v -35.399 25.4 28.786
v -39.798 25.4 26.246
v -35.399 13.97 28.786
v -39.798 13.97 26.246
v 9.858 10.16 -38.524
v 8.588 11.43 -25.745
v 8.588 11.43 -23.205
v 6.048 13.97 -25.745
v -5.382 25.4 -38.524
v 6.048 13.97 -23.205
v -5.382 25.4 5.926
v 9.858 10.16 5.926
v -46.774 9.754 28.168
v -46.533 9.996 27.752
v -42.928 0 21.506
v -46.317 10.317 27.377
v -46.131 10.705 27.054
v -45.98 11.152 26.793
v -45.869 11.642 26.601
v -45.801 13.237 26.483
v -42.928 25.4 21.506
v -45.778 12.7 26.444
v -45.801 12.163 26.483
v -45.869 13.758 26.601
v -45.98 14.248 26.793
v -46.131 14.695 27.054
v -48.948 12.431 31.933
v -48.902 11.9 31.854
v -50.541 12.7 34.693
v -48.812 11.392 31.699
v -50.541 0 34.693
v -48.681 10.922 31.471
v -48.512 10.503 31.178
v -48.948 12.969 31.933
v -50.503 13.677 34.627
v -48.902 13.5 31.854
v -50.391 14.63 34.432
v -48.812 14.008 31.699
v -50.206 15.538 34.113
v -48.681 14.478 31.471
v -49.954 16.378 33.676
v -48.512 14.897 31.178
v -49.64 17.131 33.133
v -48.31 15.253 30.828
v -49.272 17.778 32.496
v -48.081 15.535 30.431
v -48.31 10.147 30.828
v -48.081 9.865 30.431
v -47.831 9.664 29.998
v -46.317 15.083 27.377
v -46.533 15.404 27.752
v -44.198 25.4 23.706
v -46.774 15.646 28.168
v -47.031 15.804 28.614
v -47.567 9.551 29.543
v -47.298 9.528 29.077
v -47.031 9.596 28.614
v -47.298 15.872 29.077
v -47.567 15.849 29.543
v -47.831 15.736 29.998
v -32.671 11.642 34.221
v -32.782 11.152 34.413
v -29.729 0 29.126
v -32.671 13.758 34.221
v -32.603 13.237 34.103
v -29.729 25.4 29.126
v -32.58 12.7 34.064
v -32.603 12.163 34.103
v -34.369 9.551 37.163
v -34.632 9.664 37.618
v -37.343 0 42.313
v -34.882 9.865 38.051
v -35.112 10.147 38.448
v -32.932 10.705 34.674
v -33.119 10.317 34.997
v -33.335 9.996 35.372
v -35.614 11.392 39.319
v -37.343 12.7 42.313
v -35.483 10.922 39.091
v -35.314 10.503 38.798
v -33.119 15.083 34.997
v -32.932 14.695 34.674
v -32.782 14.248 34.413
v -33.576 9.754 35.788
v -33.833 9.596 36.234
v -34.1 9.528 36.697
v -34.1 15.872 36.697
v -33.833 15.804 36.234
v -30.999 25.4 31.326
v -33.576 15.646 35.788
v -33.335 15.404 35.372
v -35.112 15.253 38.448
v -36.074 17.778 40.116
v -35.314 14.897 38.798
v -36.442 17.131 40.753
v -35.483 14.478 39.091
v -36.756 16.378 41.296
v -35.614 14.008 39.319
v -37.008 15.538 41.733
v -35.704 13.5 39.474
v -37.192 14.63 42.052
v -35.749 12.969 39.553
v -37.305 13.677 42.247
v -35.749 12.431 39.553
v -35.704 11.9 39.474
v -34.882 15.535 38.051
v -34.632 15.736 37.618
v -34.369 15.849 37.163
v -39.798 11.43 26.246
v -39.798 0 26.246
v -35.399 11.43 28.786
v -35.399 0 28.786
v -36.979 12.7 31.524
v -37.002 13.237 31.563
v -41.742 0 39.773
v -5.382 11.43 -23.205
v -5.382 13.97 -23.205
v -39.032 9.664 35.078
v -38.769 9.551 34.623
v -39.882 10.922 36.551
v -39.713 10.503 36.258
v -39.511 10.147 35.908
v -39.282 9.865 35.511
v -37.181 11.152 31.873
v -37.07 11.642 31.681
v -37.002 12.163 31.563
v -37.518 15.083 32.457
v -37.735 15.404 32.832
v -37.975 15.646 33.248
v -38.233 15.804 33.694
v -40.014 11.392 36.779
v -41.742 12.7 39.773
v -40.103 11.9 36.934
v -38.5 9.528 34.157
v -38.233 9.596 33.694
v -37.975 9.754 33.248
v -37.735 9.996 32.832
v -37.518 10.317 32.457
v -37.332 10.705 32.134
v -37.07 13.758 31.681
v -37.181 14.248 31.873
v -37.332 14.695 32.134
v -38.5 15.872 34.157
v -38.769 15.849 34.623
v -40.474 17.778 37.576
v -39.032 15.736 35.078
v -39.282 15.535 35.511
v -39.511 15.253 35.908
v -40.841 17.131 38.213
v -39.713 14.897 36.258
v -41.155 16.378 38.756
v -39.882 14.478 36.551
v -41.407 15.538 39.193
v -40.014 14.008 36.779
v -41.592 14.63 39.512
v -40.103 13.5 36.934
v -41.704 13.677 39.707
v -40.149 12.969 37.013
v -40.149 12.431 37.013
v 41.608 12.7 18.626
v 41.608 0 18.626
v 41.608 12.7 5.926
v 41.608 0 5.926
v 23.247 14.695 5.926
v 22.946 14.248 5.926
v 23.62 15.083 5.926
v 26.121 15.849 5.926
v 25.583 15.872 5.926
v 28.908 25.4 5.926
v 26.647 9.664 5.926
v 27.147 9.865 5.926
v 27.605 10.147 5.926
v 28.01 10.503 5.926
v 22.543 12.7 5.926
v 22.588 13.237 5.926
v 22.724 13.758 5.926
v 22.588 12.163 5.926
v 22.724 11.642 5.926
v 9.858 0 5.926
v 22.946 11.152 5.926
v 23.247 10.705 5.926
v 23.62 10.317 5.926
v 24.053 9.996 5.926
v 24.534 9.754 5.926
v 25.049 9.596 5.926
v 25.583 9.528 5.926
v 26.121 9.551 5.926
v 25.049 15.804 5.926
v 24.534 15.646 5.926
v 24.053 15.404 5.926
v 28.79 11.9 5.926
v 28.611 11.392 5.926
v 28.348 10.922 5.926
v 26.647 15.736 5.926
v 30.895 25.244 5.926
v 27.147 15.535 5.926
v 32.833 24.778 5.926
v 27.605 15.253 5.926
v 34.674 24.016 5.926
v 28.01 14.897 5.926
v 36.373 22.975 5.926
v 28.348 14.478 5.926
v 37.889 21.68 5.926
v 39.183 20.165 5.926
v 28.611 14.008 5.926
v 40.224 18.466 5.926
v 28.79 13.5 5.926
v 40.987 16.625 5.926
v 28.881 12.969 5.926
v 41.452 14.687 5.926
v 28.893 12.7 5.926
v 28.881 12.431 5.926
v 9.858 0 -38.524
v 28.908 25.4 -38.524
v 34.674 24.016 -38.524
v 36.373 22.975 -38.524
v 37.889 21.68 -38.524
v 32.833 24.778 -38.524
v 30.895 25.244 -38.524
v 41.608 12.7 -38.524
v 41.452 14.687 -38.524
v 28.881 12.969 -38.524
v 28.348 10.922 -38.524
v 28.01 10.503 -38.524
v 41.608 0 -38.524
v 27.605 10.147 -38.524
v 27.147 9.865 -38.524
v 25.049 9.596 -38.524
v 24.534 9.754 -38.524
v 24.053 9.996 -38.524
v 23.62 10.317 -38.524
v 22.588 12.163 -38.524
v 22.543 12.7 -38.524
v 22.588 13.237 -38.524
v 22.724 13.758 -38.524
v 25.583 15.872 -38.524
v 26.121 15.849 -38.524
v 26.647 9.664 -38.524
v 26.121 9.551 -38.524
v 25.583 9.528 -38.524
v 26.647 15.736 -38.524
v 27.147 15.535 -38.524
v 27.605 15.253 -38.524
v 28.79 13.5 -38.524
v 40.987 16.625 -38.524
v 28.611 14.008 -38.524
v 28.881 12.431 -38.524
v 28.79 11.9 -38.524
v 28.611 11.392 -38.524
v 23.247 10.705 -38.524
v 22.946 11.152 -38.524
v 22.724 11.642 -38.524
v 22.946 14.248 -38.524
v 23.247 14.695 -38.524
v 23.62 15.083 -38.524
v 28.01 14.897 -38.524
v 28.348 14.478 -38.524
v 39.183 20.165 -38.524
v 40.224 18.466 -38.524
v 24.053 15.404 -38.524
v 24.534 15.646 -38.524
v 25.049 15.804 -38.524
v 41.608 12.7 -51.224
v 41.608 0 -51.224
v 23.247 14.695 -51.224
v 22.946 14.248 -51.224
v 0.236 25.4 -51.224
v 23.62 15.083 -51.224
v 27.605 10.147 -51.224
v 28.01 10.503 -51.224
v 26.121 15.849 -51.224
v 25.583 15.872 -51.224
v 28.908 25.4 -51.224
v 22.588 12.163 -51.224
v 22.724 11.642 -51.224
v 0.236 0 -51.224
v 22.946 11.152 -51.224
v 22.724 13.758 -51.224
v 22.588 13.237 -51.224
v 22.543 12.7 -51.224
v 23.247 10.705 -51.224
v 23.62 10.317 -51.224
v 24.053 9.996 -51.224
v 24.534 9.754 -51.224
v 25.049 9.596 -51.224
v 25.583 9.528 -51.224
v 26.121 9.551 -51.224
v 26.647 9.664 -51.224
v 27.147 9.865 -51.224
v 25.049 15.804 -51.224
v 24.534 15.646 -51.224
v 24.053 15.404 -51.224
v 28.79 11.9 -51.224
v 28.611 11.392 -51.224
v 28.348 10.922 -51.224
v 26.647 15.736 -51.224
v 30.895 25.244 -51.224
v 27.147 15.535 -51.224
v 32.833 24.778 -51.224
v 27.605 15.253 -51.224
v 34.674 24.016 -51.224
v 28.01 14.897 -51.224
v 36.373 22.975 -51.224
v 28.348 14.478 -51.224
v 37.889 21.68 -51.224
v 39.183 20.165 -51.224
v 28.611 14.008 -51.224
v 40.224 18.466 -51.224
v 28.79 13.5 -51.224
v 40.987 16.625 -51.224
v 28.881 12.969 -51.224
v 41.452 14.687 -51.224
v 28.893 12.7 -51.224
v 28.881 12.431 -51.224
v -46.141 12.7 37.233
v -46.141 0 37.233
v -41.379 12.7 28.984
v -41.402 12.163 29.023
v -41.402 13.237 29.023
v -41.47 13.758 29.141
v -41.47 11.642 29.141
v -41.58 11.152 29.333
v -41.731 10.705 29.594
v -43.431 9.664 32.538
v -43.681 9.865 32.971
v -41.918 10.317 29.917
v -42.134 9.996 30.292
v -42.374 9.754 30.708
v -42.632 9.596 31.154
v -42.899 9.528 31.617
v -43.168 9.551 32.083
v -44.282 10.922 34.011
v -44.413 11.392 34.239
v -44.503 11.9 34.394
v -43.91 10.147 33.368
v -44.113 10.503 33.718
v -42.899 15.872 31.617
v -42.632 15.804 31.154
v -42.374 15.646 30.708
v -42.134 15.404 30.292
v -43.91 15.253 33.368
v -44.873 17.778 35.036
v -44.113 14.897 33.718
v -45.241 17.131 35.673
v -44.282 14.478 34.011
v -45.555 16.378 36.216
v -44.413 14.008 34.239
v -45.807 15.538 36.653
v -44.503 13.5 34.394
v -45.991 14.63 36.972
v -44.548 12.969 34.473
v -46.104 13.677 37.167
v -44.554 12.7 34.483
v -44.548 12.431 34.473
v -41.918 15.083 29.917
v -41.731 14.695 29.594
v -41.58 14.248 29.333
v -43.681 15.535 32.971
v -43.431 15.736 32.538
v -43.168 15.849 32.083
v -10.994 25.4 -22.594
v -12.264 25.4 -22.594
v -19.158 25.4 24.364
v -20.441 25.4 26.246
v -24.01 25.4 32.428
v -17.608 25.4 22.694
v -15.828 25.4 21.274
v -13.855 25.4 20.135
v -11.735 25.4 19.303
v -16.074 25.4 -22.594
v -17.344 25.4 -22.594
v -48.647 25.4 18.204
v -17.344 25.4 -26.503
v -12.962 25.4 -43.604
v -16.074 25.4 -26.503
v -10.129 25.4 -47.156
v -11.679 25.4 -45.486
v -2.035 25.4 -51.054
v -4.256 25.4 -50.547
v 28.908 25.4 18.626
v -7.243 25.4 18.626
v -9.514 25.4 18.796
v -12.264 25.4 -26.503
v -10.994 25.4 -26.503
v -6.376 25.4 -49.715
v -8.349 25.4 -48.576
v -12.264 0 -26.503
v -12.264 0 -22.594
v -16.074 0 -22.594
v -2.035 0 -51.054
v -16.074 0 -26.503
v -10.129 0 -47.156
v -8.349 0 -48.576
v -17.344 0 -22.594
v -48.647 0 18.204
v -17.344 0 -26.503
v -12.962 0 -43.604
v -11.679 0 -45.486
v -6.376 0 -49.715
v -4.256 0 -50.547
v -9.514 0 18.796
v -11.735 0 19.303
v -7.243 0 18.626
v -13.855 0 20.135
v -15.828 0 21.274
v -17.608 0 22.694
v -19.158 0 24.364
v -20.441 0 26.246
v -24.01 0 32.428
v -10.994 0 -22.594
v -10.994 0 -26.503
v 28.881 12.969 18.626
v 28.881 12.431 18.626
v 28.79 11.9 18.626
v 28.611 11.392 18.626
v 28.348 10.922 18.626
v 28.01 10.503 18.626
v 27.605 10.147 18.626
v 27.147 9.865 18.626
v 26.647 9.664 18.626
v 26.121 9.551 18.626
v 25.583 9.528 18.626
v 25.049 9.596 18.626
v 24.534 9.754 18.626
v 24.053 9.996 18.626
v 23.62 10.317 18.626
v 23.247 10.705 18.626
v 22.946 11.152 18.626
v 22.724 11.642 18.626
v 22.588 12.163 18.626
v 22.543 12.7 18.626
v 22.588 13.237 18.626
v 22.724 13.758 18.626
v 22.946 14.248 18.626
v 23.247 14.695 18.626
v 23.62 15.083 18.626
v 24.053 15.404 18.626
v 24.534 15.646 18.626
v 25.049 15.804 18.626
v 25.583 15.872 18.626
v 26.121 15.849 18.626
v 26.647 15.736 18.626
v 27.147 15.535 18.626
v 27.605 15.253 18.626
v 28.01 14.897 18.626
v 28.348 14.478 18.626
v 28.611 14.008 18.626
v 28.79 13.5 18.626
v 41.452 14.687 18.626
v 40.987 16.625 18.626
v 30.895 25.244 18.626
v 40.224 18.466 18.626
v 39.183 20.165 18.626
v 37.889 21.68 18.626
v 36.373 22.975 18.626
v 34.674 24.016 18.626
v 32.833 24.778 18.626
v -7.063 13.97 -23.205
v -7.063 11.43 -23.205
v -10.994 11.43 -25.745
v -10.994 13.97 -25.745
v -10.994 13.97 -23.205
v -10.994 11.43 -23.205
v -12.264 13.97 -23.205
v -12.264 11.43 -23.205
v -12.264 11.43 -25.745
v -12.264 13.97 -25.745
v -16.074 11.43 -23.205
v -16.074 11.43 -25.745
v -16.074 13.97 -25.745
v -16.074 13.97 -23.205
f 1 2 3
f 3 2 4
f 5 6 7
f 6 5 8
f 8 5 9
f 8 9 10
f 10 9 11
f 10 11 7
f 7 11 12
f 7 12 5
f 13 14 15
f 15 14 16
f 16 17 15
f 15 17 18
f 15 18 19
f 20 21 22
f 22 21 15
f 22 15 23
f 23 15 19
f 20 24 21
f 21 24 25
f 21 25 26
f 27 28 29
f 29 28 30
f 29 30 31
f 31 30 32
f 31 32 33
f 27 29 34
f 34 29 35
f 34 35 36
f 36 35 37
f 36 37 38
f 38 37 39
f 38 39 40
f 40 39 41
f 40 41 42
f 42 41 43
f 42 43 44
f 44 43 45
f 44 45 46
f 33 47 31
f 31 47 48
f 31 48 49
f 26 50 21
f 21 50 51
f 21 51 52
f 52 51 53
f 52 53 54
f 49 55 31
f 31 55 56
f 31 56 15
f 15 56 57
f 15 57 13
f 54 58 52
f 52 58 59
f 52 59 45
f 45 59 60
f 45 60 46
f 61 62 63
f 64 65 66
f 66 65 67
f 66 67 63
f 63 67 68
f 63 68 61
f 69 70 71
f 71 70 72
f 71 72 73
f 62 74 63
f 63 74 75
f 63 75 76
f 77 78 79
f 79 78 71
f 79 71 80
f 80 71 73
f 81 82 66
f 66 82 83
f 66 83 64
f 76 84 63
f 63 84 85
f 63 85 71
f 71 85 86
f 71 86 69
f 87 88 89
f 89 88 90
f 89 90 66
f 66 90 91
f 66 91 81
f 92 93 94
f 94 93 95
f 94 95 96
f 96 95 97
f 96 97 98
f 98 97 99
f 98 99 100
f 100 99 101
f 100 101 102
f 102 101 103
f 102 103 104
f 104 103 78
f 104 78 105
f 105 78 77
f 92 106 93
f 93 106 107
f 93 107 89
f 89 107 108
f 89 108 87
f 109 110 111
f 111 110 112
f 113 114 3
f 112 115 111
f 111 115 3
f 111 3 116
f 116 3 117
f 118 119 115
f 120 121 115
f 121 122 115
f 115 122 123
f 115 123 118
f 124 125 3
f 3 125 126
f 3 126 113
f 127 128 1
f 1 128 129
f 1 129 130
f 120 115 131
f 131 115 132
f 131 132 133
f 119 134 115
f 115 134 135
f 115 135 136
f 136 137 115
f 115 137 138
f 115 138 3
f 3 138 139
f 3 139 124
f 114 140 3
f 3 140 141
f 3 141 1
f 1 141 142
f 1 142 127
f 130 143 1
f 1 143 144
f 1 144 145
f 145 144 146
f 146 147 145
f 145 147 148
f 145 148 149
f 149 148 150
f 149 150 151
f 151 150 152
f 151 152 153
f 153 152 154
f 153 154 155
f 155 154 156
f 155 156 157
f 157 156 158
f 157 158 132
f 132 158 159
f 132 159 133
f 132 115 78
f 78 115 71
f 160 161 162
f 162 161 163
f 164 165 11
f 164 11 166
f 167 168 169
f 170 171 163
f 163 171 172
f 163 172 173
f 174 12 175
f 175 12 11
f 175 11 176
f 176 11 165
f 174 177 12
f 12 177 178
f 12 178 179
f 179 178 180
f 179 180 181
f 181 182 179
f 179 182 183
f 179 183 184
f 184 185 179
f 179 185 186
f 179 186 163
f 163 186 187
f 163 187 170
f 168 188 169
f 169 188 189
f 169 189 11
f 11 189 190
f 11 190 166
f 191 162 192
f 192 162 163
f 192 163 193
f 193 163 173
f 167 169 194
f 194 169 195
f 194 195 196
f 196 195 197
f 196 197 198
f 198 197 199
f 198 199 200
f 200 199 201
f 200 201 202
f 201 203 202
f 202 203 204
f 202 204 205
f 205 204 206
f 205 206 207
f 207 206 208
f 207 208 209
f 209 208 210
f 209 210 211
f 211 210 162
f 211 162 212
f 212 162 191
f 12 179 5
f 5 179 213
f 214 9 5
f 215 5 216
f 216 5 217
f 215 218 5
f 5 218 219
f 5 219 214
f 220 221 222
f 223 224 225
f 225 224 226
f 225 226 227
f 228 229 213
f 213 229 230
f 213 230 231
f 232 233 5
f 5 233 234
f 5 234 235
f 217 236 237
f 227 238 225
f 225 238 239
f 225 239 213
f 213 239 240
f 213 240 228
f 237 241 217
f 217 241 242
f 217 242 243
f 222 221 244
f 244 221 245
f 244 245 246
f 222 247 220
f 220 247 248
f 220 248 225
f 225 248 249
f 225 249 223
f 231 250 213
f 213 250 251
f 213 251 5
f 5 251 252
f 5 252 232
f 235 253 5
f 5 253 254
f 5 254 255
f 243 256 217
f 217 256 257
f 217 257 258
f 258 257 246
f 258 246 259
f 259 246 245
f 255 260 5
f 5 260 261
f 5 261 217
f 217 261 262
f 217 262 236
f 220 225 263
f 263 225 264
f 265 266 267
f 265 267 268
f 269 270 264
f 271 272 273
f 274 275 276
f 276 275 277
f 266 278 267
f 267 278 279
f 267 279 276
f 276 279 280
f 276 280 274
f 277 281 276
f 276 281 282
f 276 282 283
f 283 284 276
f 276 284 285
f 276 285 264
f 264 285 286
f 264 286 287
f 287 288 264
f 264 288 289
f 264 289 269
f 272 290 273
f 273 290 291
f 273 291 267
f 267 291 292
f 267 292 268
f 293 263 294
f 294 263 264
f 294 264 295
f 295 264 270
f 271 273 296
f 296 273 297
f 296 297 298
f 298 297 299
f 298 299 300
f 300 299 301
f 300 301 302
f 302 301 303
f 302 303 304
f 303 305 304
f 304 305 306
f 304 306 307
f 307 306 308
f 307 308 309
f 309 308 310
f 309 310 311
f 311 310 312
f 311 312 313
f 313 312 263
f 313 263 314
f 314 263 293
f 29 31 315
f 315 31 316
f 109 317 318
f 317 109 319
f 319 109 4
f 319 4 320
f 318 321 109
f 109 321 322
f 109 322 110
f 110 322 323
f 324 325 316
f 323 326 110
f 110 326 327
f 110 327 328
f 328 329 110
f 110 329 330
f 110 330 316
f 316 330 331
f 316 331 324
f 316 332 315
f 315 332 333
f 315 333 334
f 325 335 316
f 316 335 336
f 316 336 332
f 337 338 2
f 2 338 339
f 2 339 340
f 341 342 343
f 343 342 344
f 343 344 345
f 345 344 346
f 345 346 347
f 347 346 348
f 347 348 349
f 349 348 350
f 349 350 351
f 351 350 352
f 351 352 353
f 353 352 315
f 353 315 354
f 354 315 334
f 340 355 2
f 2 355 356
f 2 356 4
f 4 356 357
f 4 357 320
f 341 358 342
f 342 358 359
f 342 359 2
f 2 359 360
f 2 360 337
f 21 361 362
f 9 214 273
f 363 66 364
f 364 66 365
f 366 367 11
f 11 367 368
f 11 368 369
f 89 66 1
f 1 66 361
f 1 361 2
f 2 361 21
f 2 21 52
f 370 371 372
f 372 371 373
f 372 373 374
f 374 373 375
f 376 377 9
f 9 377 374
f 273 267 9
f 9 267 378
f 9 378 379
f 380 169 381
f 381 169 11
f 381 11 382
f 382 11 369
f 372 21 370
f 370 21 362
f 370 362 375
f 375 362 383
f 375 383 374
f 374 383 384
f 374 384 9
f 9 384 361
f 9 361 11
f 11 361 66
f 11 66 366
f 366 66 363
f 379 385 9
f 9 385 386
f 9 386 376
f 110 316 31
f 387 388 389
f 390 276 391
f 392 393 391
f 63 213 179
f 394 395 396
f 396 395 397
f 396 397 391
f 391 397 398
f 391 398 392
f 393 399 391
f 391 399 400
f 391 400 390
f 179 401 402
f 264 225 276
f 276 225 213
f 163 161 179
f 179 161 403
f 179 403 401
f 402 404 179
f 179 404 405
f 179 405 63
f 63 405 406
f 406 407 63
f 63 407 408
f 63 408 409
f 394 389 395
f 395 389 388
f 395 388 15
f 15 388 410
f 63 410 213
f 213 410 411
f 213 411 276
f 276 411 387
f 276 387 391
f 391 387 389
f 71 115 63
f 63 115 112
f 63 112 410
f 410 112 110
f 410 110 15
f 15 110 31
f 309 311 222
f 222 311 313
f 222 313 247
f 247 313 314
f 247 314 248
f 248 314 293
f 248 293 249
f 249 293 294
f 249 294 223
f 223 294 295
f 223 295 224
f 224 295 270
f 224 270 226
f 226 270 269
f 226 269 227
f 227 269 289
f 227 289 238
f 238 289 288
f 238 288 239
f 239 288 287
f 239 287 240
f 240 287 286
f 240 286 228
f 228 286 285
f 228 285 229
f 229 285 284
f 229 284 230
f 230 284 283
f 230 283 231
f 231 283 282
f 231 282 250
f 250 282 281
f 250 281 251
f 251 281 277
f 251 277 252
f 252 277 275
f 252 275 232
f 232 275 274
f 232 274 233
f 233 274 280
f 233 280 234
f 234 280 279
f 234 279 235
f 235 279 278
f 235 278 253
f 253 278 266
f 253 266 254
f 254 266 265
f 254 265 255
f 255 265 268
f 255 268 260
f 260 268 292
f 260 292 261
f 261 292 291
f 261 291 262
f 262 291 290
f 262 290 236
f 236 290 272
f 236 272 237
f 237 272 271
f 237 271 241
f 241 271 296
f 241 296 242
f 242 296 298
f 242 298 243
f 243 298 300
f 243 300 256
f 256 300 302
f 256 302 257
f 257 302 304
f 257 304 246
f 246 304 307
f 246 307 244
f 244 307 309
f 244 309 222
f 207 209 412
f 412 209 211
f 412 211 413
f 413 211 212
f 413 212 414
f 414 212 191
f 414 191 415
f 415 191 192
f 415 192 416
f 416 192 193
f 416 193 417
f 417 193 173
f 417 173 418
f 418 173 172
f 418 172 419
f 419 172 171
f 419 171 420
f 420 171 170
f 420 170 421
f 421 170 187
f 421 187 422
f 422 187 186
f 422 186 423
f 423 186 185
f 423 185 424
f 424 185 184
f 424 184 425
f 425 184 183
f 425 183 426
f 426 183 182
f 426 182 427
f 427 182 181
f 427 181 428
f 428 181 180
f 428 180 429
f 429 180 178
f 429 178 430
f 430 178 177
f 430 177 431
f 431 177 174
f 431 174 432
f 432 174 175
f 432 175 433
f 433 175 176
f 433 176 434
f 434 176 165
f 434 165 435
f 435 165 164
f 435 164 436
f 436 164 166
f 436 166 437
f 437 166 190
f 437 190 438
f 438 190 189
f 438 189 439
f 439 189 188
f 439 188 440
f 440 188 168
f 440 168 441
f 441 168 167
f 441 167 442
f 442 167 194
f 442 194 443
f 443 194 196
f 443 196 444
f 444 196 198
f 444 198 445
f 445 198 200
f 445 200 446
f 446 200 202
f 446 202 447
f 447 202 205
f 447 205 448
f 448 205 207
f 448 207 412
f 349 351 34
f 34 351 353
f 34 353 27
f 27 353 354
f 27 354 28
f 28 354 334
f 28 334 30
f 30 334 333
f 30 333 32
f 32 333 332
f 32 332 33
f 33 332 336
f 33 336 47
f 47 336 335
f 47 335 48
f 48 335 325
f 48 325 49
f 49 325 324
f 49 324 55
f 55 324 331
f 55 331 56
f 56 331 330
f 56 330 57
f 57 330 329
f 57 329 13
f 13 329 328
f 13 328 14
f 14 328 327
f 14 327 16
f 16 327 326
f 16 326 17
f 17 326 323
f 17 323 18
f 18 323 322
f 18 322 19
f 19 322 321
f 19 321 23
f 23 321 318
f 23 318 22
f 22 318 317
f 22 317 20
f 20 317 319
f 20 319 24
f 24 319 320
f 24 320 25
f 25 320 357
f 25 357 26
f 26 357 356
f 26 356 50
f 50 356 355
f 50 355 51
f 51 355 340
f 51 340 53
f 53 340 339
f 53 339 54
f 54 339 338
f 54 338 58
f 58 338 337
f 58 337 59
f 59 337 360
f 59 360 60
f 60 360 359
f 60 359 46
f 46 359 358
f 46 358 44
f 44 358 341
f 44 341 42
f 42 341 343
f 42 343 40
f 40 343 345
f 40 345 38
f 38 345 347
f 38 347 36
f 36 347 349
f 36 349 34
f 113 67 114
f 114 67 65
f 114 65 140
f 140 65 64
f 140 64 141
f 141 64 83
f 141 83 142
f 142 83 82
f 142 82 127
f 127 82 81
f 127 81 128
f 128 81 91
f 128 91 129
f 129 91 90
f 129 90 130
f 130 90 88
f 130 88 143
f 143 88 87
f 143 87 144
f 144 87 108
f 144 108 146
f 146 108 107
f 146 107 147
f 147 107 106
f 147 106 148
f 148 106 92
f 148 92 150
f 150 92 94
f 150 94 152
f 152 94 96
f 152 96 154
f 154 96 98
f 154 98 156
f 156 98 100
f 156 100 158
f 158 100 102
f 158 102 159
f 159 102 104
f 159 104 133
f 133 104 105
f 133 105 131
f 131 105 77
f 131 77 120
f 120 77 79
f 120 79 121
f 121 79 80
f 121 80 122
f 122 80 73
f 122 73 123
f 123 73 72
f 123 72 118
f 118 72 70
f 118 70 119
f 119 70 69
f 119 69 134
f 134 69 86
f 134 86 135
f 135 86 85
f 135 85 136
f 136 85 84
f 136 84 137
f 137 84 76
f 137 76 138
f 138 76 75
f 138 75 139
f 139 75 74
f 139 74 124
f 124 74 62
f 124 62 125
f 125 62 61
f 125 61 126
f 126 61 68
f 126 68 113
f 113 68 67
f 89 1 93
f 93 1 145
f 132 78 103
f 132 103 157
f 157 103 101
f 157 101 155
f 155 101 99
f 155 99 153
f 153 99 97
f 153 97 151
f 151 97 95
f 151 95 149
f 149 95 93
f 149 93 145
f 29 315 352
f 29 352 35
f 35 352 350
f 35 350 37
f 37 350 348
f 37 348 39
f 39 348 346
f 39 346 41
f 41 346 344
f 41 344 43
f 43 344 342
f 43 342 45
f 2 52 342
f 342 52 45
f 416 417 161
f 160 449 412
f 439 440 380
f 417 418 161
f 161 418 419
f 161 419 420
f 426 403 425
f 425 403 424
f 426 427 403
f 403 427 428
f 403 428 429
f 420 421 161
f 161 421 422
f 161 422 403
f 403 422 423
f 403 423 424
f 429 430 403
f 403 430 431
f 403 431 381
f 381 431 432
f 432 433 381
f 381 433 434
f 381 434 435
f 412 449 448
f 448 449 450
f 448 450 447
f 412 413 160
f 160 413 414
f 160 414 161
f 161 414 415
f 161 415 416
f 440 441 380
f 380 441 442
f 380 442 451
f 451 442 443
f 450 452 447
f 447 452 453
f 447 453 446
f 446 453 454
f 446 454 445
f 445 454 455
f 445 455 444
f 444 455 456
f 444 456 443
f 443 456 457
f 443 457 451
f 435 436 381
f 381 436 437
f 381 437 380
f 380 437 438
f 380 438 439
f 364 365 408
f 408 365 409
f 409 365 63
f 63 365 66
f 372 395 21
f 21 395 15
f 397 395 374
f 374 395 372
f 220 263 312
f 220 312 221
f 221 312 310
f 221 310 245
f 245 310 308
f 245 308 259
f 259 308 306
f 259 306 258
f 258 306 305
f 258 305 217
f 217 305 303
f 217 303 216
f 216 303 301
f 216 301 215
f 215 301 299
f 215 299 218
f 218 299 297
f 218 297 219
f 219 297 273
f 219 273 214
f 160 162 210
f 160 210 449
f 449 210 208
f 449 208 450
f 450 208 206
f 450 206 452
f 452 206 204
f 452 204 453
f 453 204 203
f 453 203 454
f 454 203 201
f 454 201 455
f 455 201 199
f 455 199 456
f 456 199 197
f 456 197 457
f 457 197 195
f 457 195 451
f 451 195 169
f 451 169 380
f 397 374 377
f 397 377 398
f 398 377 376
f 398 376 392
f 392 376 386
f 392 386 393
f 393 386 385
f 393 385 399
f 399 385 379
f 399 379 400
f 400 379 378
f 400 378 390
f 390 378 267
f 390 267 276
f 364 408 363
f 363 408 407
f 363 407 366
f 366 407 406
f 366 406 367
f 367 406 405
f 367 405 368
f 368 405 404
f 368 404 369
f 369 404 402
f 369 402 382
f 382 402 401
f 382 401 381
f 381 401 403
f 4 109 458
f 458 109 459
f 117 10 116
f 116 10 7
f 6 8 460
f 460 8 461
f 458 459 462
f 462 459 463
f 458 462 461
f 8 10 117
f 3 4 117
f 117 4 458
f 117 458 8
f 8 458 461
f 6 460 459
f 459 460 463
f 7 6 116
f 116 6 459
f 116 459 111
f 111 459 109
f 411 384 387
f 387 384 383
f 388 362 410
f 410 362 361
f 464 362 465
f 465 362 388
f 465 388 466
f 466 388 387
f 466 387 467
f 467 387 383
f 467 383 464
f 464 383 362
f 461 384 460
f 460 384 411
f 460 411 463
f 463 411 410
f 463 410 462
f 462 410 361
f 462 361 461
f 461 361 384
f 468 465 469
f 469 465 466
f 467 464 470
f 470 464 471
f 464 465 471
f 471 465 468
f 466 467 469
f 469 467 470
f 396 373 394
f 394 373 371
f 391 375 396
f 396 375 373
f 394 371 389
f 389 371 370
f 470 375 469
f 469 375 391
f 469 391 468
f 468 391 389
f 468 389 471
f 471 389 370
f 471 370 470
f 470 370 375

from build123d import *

# Parameters (mm, degrees)
BOSS_EXTRUDE1_DEPTH     = 25.4
CUT_EXTRUDE1_DEPTH      = 110.310025801
CUT_EXTRUDE1_DEPTH_BACK = 110.310025801
SKETCH8_R               = 3.175
SKETCH9_R               = 3.175
CUT_EXTRUDE2_DEPTH      = 25.4
CUT_EXTRUDE3_DEPTH      = 75.639044044
CUT_EXTRUDE4_DEPTH      = 25.4
SKETCH14_W              = 33.446436581
SKETCH14_H              = 25.4
BOSS_EXTRUDE2_DEPTH     = 6.604
SKETCH15_W              = 83.98171134
SKETCH15_H              = 25.4
BOSS_EXTRUDE3_DEPTH     = 6.604
CUT_EXTRUDE5_DEPTH      = 79.566235631
FILLET11_R              = 12.7
CHAMFER1_SIZE           = 15.24
FILLET12_R              = 15.24
CUT_EXTRUDE6_DEPTH      = 1.27
CUT_EXTRUDE6_DEPTH_BACK = 1.27
CUT_EXTRUDE7_DEPTH      = 77.311629432
CUT_EXTRUDE7_DEPTH_BACK = 77.311629432
SKETCH21_W              = 1.27
SKETCH21_H              = 3.908978547


with BuildPart() as part:
    # Sketch2 → Boss-Extrude1 (new body)
    with BuildSketch(Plane(origin=(0, 0, 0), x_dir=(1, 0, 0), z_dir=(0, 1, 0))):
        Polygon((-0.93668344, 51.22431719), (-50.540816327, -34.692561236), (-46.141407275, -37.232561236), (-39.798130059, -26.24568281), (-35.398721007, -28.78568281), (-41.741998224, -39.772561236), (-37.342589173, -42.312561236), (-30.999311956, -31.32568281), (41.60831656, -31.32568281), (41.60831656, -5.92568281), (9.85831656, -5.92568281), (9.85831656, 38.52431719), (41.60831656, 38.52431719), (41.60831656, 51.22431719), align=None)
    extrude(amount=BOSS_EXTRUDE1_DEPTH)

    # Sketch8 → Cut-Extrude1 (cut, two sides: drawn at the far end of the back side and taken through both)
    with BuildSketch(Plane(origin=(0, 0, -51.22431719), x_dir=(-1, 0, 0), z_dir=(0, 0, -1)).offset(-CUT_EXTRUDE1_DEPTH_BACK)):
        with Locations((-25.7175, 12.7)):
            Circle(SKETCH8_R)
    extrude(amount=CUT_EXTRUDE1_DEPTH + CUT_EXTRUDE1_DEPTH_BACK, mode=Mode.SUBTRACT)

    # Sketch9 → Cut-Extrude2 (cut)
    with BuildSketch(Plane(origin=(-9.685065415, 0, -5.591675124), x_dir=(0.5000000000000036, 0, -0.8660254037844367), z_dir=(0.8660254037844366, 0, 0.5000000000000034))):
        with Locations((-48.965047516, 12.7)):
            Circle(SKETCH9_R)
    extrude(amount=-CUT_EXTRUDE2_DEPTH, mode=Mode.SUBTRACT)

    # Sketch11 → Cut-Extrude3 (cut, through all)
    with BuildSketch(Plane(origin=(-9.685065415, 0, -5.591675124), x_dir=(0.5000000000000036, 0, -0.8660254037844367), z_dir=(0.8660254037844366, 0, 0.5000000000000034))):
        with BuildLine():
            Line((-42.628493082, 25.4), (-52.778275903, 17.777577106))
            ThreePointArc((-52.778275903, 17.777577106), (-54.645562469, 15.538001034), (-55.315047516, 12.7))
            Line((-55.315047516, 12.7), (-55.315047516, 25.4))
            Line((-55.315047516, 25.4), (-42.628493082, 25.4))
        make_face()
    extrude(amount=-CUT_EXTRUDE3_DEPTH, mode=Mode.SUBTRACT)

    # Sketch12 → Cut-Extrude4 (cut)
    with BuildSketch(Plane(origin=(0, 25.4, 0), x_dir=(1, 0, 0), z_dir=(0, 1, 0))):
        Polygon((41.60831656, -18.62568281), (-23.666963538, -18.62568281), (-30.999311956, -31.32568281), (41.60831656, -31.32568281), align=None)
    extrude(amount=-CUT_EXTRUDE4_DEPTH, mode=Mode.SUBTRACT)

    # Sketch14 → Boss-Extrude2 (add)
    with BuildSketch(Plane(origin=(-9.685065415, 0, -5.591675124), x_dir=(0.5000000000000036, 0, -0.8660254037844367), z_dir=(0.8660254037844366, 0, 0.5000000000000034))):
        with Locations((-23.365274791, 12.7)):
            Rectangle(SKETCH14_W, SKETCH14_H)
    extrude(amount=BOSS_EXTRUDE2_DEPTH)

    # Sketch15 → Boss-Extrude3 (add)
    with BuildSketch(Plane(origin=(-22.883292569, 0, -13.211675124), x_dir=(-0.5000000000000002, 0, 0.8660254037844386), z_dir=(-0.8660254037844385, 0, -0.5000000000000001))):
        with Locations((-1.902362588, 12.7)):
            Rectangle(SKETCH15_W, SKETCH15_H)
    extrude(amount=BOSS_EXTRUDE3_DEPTH)

    # Sketch16 → Cut-Extrude5 (cut, through all)
    with BuildSketch(Plane(origin=(0, 25.4, 0), x_dir=(1, 0, 0), z_dir=(0, 1, 0))):
        Polygon((-0.93668344, 51.22431719), (-8.562325795, 51.22431719), (-6.655915206, 54.52631719), align=None)
    extrude(amount=-CUT_EXTRUDE5_DEPTH, mode=Mode.SUBTRACT)

    # Fillet11
    fillet11_edges = [part.edges().sort_by_distance(p)[0] for p in [
        (41.60831656, 25.4, -44.87431719),
        (41.60831656, 25.4, 12.27568281),
    ]]
    fillet(fillet11_edges, radius=FILLET11_R)

    # Chamfer1
    chamfer1_edges = [part.edges().sort_by_distance(p)[0] for p in [
        (9.85831656, 25.4, -16.29931719),
    ]]
    chamfer(chamfer1_edges, length=CHAMFER1_SIZE)

    # Fillet12
    fillet12_edges = [part.edges().sort_by_distance(p)[0] for p in [
        (-16.041321182, 12.7, 18.62568281),
        (-8.562325795, 12.7, -51.22431719),
    ]]
    fillet(fillet12_edges, radius=FILLET12_R)

    # Sketch19 → Cut-Extrude6 (cut, two sides: drawn at the far end of the back side and taken through both)
    with BuildSketch(Plane(origin=(0, 12.7, 0), x_dir=(1, 0, 0), z_dir=(0, 1, 0)).offset(-CUT_EXTRUDE6_DEPTH_BACK)):
        Polygon((-39.798130059, -26.24568281), (-35.398721007, -28.78568281), (-5.38168344, 23.20535135), (9.85831656, 23.20535135), (9.85831656, 25.74535135), (-5.38168344, 25.74535135), (-17.281047632, 25.74535135), (-17.281047632, 23.20535135), (-7.063084393, 23.20535135), align=None)
    extrude(amount=CUT_EXTRUDE6_DEPTH + CUT_EXTRUDE6_DEPTH_BACK, mode=Mode.SUBTRACT)

    # Sketch21 → Cut-Extrude7 (cut, two sides: drawn at the far end of the back side and taken through both)
    with BuildSketch(Plane(origin=(0, 25.4, 0), x_dir=(1, 0, 0), z_dir=(0, 1, 0)).offset(-CUT_EXTRUDE7_DEPTH_BACK)):
        with Locations((-16.708566929, 24.548624707)):
            Rectangle(SKETCH21_W, SKETCH21_H)
        with Locations((-11.628566929, 24.548624707)):
            Rectangle(SKETCH21_W, SKETCH21_H)
    extrude(amount=CUT_EXTRUDE7_DEPTH + CUT_EXTRUDE7_DEPTH_BACK, mode=Mode.SUBTRACT)


solid = part.part
